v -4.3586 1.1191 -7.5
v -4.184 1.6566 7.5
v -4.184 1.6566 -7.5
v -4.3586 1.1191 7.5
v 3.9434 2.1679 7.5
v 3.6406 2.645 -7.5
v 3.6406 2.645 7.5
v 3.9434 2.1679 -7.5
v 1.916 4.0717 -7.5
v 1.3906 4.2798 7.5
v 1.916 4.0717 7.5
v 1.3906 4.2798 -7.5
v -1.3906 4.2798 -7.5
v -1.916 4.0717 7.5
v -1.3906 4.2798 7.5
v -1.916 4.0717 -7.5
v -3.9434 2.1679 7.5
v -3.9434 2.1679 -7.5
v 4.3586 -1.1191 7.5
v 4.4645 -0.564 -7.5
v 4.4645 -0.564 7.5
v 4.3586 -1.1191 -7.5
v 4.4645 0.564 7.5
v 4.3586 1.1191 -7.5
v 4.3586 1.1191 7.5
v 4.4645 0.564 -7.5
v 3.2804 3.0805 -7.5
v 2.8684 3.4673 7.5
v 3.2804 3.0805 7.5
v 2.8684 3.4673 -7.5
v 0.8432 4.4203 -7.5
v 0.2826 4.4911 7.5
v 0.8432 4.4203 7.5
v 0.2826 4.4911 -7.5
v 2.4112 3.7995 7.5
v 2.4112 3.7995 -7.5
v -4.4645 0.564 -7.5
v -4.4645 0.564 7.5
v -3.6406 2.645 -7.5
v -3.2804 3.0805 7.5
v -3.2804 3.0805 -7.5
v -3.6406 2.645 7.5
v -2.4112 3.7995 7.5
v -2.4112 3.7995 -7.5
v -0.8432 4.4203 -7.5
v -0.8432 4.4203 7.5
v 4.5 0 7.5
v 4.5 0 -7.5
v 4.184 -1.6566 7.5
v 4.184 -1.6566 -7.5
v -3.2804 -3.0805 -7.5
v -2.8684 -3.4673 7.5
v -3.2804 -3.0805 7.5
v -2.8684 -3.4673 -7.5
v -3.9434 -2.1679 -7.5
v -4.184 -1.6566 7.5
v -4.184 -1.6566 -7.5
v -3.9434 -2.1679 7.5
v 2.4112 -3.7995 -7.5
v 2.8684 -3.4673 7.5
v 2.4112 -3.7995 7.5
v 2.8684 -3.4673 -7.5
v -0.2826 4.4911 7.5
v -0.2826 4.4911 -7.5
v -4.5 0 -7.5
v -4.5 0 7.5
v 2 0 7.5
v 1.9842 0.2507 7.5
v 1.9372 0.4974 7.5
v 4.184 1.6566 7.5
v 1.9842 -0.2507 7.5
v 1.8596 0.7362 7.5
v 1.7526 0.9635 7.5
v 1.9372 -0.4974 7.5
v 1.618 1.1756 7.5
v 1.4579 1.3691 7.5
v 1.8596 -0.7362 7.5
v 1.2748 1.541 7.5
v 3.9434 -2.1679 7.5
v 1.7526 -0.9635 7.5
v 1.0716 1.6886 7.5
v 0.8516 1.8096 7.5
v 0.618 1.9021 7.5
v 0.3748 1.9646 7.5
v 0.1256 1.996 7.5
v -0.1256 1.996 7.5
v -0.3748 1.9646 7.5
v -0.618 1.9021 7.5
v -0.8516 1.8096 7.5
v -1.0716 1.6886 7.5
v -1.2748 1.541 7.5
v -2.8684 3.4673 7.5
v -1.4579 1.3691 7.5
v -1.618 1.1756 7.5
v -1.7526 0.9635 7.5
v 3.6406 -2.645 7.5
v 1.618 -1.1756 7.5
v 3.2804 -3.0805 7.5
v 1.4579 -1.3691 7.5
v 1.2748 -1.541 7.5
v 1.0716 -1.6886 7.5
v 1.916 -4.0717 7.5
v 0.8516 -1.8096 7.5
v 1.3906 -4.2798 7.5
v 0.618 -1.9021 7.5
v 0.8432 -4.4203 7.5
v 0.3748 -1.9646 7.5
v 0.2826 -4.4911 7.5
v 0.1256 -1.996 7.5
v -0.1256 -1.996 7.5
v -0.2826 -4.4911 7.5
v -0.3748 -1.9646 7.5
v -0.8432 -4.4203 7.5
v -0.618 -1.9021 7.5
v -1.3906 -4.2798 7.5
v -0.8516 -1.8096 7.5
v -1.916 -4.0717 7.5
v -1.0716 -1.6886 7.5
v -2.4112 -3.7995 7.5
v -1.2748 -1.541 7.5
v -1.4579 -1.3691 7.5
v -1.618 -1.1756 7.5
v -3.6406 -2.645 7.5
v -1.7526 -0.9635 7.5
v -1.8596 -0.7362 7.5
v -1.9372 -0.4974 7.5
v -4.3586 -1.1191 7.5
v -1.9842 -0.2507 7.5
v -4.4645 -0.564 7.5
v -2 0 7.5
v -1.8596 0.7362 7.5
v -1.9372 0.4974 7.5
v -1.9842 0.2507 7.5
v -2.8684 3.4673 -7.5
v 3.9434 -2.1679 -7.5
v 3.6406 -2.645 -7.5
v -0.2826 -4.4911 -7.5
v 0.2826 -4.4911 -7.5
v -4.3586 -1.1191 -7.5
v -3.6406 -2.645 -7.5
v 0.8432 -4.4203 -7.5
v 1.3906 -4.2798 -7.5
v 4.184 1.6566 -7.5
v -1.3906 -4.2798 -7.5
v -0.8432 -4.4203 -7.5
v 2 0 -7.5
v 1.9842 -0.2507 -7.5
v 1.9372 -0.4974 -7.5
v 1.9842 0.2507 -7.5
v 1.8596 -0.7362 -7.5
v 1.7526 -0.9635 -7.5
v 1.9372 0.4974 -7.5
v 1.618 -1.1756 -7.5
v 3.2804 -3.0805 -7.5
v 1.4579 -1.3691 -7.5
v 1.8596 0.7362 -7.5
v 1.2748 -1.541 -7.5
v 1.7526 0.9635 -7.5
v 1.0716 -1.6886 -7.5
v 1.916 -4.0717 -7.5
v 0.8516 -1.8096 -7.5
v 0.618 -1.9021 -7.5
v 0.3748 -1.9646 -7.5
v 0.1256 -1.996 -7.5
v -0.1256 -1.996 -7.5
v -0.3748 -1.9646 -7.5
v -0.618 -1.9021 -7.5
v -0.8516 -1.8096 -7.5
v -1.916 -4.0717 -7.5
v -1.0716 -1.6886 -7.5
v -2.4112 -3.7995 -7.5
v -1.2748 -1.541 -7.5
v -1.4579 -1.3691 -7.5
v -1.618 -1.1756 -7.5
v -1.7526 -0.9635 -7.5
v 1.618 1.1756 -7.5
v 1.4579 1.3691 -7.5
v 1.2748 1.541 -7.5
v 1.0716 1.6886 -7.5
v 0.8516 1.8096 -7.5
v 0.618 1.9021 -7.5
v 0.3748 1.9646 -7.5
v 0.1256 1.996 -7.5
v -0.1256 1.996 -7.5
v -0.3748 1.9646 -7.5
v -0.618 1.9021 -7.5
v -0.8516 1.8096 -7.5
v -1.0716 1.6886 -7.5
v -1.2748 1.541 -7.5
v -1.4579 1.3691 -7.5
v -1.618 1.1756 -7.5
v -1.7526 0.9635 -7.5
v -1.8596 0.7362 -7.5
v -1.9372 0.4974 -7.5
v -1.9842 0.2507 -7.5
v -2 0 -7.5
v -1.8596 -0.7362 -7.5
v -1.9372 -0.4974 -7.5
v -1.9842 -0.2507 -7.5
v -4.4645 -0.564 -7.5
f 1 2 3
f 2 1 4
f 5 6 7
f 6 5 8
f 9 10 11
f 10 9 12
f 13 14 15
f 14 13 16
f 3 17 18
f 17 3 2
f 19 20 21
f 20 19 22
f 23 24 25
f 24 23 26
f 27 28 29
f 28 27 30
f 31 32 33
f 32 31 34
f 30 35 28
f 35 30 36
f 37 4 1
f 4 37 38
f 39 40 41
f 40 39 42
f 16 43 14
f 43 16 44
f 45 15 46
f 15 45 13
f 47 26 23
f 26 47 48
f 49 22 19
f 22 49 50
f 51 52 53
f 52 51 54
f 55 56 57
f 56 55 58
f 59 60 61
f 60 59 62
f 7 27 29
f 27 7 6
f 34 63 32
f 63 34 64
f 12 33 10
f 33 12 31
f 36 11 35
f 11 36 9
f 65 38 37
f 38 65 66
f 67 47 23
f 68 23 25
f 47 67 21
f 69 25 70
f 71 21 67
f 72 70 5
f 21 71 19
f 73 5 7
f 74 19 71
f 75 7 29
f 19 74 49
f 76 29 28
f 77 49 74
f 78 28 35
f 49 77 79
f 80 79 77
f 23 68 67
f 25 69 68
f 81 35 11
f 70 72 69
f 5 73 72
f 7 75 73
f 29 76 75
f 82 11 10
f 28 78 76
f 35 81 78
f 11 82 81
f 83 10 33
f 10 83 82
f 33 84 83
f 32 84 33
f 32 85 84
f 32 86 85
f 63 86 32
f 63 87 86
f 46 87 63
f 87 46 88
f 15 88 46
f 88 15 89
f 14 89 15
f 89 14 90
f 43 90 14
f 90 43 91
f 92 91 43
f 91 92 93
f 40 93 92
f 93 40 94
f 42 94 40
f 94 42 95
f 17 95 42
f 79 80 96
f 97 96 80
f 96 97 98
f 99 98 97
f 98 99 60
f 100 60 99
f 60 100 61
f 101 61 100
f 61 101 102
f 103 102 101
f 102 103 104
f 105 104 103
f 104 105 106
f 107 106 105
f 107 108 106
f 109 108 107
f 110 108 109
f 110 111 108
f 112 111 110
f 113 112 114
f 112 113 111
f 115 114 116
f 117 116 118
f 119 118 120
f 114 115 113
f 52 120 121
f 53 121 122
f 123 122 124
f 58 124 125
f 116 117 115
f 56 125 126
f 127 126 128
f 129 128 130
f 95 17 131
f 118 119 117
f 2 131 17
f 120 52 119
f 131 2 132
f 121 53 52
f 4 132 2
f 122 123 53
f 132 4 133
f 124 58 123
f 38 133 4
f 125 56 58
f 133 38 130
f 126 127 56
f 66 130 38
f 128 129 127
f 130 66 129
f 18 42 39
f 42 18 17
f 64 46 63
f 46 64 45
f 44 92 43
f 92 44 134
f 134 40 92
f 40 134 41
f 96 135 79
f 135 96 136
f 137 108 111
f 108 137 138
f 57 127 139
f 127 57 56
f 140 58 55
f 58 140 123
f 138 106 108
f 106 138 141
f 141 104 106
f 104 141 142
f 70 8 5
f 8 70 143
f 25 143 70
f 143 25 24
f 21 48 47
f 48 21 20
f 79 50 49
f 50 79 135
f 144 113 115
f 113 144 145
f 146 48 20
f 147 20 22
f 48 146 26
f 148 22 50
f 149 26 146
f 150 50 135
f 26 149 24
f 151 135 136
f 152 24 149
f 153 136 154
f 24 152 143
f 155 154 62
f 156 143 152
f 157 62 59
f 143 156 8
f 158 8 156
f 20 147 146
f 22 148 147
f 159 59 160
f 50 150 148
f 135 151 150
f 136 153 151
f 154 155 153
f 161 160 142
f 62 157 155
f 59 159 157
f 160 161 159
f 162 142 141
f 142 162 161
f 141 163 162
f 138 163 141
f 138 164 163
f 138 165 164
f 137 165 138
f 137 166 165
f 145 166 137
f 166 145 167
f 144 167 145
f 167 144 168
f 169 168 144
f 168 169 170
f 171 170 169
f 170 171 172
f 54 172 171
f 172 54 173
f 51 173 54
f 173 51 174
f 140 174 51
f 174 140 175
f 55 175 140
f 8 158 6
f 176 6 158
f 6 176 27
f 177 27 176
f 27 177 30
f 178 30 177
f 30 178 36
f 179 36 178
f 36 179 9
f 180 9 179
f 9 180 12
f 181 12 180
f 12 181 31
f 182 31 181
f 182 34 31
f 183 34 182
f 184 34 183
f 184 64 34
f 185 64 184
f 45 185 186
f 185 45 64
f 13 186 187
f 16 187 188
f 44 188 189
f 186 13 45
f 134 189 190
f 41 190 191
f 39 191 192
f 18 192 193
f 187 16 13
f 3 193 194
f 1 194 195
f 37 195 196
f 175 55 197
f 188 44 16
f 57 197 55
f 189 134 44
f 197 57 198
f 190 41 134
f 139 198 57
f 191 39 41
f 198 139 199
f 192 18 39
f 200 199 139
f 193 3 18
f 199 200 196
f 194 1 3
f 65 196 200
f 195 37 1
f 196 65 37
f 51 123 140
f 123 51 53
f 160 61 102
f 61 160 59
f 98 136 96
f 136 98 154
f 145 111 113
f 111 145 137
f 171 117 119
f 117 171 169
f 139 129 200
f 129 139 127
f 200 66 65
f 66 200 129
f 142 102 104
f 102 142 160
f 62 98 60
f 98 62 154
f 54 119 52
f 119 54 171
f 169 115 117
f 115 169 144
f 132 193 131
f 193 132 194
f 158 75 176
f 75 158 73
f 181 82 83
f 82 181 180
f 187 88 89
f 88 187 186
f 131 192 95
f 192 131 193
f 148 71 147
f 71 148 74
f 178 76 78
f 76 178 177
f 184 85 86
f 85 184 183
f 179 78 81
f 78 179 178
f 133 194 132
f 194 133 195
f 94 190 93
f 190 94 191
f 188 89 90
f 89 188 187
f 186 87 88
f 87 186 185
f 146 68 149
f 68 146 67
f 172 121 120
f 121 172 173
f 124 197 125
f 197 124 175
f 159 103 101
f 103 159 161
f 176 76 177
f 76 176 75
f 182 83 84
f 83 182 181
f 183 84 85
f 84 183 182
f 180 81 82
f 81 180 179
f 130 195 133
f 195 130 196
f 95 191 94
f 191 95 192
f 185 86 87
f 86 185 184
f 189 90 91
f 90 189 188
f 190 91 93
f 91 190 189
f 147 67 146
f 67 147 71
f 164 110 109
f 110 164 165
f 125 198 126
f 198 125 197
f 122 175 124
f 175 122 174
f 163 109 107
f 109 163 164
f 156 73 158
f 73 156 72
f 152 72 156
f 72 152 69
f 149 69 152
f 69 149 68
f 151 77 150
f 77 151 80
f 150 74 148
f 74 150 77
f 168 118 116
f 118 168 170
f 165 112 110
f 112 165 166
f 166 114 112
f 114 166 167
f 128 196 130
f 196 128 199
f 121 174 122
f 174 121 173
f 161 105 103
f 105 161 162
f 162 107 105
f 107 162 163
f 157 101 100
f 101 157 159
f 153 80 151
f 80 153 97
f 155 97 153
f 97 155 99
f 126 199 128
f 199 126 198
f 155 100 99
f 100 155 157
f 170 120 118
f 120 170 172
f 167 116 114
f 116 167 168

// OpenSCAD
$fn = 50;


difference() {
	union() {
		translate(v = [0, 0, -7.5000000000]) {
			cylinder(h = 15, r = 4.5000000000);
		}
	}
	union() {
		translate(v = [0, 0, -100.0000000000]) {
			cylinder(h = 200, r = 2);
		}
	}
}
